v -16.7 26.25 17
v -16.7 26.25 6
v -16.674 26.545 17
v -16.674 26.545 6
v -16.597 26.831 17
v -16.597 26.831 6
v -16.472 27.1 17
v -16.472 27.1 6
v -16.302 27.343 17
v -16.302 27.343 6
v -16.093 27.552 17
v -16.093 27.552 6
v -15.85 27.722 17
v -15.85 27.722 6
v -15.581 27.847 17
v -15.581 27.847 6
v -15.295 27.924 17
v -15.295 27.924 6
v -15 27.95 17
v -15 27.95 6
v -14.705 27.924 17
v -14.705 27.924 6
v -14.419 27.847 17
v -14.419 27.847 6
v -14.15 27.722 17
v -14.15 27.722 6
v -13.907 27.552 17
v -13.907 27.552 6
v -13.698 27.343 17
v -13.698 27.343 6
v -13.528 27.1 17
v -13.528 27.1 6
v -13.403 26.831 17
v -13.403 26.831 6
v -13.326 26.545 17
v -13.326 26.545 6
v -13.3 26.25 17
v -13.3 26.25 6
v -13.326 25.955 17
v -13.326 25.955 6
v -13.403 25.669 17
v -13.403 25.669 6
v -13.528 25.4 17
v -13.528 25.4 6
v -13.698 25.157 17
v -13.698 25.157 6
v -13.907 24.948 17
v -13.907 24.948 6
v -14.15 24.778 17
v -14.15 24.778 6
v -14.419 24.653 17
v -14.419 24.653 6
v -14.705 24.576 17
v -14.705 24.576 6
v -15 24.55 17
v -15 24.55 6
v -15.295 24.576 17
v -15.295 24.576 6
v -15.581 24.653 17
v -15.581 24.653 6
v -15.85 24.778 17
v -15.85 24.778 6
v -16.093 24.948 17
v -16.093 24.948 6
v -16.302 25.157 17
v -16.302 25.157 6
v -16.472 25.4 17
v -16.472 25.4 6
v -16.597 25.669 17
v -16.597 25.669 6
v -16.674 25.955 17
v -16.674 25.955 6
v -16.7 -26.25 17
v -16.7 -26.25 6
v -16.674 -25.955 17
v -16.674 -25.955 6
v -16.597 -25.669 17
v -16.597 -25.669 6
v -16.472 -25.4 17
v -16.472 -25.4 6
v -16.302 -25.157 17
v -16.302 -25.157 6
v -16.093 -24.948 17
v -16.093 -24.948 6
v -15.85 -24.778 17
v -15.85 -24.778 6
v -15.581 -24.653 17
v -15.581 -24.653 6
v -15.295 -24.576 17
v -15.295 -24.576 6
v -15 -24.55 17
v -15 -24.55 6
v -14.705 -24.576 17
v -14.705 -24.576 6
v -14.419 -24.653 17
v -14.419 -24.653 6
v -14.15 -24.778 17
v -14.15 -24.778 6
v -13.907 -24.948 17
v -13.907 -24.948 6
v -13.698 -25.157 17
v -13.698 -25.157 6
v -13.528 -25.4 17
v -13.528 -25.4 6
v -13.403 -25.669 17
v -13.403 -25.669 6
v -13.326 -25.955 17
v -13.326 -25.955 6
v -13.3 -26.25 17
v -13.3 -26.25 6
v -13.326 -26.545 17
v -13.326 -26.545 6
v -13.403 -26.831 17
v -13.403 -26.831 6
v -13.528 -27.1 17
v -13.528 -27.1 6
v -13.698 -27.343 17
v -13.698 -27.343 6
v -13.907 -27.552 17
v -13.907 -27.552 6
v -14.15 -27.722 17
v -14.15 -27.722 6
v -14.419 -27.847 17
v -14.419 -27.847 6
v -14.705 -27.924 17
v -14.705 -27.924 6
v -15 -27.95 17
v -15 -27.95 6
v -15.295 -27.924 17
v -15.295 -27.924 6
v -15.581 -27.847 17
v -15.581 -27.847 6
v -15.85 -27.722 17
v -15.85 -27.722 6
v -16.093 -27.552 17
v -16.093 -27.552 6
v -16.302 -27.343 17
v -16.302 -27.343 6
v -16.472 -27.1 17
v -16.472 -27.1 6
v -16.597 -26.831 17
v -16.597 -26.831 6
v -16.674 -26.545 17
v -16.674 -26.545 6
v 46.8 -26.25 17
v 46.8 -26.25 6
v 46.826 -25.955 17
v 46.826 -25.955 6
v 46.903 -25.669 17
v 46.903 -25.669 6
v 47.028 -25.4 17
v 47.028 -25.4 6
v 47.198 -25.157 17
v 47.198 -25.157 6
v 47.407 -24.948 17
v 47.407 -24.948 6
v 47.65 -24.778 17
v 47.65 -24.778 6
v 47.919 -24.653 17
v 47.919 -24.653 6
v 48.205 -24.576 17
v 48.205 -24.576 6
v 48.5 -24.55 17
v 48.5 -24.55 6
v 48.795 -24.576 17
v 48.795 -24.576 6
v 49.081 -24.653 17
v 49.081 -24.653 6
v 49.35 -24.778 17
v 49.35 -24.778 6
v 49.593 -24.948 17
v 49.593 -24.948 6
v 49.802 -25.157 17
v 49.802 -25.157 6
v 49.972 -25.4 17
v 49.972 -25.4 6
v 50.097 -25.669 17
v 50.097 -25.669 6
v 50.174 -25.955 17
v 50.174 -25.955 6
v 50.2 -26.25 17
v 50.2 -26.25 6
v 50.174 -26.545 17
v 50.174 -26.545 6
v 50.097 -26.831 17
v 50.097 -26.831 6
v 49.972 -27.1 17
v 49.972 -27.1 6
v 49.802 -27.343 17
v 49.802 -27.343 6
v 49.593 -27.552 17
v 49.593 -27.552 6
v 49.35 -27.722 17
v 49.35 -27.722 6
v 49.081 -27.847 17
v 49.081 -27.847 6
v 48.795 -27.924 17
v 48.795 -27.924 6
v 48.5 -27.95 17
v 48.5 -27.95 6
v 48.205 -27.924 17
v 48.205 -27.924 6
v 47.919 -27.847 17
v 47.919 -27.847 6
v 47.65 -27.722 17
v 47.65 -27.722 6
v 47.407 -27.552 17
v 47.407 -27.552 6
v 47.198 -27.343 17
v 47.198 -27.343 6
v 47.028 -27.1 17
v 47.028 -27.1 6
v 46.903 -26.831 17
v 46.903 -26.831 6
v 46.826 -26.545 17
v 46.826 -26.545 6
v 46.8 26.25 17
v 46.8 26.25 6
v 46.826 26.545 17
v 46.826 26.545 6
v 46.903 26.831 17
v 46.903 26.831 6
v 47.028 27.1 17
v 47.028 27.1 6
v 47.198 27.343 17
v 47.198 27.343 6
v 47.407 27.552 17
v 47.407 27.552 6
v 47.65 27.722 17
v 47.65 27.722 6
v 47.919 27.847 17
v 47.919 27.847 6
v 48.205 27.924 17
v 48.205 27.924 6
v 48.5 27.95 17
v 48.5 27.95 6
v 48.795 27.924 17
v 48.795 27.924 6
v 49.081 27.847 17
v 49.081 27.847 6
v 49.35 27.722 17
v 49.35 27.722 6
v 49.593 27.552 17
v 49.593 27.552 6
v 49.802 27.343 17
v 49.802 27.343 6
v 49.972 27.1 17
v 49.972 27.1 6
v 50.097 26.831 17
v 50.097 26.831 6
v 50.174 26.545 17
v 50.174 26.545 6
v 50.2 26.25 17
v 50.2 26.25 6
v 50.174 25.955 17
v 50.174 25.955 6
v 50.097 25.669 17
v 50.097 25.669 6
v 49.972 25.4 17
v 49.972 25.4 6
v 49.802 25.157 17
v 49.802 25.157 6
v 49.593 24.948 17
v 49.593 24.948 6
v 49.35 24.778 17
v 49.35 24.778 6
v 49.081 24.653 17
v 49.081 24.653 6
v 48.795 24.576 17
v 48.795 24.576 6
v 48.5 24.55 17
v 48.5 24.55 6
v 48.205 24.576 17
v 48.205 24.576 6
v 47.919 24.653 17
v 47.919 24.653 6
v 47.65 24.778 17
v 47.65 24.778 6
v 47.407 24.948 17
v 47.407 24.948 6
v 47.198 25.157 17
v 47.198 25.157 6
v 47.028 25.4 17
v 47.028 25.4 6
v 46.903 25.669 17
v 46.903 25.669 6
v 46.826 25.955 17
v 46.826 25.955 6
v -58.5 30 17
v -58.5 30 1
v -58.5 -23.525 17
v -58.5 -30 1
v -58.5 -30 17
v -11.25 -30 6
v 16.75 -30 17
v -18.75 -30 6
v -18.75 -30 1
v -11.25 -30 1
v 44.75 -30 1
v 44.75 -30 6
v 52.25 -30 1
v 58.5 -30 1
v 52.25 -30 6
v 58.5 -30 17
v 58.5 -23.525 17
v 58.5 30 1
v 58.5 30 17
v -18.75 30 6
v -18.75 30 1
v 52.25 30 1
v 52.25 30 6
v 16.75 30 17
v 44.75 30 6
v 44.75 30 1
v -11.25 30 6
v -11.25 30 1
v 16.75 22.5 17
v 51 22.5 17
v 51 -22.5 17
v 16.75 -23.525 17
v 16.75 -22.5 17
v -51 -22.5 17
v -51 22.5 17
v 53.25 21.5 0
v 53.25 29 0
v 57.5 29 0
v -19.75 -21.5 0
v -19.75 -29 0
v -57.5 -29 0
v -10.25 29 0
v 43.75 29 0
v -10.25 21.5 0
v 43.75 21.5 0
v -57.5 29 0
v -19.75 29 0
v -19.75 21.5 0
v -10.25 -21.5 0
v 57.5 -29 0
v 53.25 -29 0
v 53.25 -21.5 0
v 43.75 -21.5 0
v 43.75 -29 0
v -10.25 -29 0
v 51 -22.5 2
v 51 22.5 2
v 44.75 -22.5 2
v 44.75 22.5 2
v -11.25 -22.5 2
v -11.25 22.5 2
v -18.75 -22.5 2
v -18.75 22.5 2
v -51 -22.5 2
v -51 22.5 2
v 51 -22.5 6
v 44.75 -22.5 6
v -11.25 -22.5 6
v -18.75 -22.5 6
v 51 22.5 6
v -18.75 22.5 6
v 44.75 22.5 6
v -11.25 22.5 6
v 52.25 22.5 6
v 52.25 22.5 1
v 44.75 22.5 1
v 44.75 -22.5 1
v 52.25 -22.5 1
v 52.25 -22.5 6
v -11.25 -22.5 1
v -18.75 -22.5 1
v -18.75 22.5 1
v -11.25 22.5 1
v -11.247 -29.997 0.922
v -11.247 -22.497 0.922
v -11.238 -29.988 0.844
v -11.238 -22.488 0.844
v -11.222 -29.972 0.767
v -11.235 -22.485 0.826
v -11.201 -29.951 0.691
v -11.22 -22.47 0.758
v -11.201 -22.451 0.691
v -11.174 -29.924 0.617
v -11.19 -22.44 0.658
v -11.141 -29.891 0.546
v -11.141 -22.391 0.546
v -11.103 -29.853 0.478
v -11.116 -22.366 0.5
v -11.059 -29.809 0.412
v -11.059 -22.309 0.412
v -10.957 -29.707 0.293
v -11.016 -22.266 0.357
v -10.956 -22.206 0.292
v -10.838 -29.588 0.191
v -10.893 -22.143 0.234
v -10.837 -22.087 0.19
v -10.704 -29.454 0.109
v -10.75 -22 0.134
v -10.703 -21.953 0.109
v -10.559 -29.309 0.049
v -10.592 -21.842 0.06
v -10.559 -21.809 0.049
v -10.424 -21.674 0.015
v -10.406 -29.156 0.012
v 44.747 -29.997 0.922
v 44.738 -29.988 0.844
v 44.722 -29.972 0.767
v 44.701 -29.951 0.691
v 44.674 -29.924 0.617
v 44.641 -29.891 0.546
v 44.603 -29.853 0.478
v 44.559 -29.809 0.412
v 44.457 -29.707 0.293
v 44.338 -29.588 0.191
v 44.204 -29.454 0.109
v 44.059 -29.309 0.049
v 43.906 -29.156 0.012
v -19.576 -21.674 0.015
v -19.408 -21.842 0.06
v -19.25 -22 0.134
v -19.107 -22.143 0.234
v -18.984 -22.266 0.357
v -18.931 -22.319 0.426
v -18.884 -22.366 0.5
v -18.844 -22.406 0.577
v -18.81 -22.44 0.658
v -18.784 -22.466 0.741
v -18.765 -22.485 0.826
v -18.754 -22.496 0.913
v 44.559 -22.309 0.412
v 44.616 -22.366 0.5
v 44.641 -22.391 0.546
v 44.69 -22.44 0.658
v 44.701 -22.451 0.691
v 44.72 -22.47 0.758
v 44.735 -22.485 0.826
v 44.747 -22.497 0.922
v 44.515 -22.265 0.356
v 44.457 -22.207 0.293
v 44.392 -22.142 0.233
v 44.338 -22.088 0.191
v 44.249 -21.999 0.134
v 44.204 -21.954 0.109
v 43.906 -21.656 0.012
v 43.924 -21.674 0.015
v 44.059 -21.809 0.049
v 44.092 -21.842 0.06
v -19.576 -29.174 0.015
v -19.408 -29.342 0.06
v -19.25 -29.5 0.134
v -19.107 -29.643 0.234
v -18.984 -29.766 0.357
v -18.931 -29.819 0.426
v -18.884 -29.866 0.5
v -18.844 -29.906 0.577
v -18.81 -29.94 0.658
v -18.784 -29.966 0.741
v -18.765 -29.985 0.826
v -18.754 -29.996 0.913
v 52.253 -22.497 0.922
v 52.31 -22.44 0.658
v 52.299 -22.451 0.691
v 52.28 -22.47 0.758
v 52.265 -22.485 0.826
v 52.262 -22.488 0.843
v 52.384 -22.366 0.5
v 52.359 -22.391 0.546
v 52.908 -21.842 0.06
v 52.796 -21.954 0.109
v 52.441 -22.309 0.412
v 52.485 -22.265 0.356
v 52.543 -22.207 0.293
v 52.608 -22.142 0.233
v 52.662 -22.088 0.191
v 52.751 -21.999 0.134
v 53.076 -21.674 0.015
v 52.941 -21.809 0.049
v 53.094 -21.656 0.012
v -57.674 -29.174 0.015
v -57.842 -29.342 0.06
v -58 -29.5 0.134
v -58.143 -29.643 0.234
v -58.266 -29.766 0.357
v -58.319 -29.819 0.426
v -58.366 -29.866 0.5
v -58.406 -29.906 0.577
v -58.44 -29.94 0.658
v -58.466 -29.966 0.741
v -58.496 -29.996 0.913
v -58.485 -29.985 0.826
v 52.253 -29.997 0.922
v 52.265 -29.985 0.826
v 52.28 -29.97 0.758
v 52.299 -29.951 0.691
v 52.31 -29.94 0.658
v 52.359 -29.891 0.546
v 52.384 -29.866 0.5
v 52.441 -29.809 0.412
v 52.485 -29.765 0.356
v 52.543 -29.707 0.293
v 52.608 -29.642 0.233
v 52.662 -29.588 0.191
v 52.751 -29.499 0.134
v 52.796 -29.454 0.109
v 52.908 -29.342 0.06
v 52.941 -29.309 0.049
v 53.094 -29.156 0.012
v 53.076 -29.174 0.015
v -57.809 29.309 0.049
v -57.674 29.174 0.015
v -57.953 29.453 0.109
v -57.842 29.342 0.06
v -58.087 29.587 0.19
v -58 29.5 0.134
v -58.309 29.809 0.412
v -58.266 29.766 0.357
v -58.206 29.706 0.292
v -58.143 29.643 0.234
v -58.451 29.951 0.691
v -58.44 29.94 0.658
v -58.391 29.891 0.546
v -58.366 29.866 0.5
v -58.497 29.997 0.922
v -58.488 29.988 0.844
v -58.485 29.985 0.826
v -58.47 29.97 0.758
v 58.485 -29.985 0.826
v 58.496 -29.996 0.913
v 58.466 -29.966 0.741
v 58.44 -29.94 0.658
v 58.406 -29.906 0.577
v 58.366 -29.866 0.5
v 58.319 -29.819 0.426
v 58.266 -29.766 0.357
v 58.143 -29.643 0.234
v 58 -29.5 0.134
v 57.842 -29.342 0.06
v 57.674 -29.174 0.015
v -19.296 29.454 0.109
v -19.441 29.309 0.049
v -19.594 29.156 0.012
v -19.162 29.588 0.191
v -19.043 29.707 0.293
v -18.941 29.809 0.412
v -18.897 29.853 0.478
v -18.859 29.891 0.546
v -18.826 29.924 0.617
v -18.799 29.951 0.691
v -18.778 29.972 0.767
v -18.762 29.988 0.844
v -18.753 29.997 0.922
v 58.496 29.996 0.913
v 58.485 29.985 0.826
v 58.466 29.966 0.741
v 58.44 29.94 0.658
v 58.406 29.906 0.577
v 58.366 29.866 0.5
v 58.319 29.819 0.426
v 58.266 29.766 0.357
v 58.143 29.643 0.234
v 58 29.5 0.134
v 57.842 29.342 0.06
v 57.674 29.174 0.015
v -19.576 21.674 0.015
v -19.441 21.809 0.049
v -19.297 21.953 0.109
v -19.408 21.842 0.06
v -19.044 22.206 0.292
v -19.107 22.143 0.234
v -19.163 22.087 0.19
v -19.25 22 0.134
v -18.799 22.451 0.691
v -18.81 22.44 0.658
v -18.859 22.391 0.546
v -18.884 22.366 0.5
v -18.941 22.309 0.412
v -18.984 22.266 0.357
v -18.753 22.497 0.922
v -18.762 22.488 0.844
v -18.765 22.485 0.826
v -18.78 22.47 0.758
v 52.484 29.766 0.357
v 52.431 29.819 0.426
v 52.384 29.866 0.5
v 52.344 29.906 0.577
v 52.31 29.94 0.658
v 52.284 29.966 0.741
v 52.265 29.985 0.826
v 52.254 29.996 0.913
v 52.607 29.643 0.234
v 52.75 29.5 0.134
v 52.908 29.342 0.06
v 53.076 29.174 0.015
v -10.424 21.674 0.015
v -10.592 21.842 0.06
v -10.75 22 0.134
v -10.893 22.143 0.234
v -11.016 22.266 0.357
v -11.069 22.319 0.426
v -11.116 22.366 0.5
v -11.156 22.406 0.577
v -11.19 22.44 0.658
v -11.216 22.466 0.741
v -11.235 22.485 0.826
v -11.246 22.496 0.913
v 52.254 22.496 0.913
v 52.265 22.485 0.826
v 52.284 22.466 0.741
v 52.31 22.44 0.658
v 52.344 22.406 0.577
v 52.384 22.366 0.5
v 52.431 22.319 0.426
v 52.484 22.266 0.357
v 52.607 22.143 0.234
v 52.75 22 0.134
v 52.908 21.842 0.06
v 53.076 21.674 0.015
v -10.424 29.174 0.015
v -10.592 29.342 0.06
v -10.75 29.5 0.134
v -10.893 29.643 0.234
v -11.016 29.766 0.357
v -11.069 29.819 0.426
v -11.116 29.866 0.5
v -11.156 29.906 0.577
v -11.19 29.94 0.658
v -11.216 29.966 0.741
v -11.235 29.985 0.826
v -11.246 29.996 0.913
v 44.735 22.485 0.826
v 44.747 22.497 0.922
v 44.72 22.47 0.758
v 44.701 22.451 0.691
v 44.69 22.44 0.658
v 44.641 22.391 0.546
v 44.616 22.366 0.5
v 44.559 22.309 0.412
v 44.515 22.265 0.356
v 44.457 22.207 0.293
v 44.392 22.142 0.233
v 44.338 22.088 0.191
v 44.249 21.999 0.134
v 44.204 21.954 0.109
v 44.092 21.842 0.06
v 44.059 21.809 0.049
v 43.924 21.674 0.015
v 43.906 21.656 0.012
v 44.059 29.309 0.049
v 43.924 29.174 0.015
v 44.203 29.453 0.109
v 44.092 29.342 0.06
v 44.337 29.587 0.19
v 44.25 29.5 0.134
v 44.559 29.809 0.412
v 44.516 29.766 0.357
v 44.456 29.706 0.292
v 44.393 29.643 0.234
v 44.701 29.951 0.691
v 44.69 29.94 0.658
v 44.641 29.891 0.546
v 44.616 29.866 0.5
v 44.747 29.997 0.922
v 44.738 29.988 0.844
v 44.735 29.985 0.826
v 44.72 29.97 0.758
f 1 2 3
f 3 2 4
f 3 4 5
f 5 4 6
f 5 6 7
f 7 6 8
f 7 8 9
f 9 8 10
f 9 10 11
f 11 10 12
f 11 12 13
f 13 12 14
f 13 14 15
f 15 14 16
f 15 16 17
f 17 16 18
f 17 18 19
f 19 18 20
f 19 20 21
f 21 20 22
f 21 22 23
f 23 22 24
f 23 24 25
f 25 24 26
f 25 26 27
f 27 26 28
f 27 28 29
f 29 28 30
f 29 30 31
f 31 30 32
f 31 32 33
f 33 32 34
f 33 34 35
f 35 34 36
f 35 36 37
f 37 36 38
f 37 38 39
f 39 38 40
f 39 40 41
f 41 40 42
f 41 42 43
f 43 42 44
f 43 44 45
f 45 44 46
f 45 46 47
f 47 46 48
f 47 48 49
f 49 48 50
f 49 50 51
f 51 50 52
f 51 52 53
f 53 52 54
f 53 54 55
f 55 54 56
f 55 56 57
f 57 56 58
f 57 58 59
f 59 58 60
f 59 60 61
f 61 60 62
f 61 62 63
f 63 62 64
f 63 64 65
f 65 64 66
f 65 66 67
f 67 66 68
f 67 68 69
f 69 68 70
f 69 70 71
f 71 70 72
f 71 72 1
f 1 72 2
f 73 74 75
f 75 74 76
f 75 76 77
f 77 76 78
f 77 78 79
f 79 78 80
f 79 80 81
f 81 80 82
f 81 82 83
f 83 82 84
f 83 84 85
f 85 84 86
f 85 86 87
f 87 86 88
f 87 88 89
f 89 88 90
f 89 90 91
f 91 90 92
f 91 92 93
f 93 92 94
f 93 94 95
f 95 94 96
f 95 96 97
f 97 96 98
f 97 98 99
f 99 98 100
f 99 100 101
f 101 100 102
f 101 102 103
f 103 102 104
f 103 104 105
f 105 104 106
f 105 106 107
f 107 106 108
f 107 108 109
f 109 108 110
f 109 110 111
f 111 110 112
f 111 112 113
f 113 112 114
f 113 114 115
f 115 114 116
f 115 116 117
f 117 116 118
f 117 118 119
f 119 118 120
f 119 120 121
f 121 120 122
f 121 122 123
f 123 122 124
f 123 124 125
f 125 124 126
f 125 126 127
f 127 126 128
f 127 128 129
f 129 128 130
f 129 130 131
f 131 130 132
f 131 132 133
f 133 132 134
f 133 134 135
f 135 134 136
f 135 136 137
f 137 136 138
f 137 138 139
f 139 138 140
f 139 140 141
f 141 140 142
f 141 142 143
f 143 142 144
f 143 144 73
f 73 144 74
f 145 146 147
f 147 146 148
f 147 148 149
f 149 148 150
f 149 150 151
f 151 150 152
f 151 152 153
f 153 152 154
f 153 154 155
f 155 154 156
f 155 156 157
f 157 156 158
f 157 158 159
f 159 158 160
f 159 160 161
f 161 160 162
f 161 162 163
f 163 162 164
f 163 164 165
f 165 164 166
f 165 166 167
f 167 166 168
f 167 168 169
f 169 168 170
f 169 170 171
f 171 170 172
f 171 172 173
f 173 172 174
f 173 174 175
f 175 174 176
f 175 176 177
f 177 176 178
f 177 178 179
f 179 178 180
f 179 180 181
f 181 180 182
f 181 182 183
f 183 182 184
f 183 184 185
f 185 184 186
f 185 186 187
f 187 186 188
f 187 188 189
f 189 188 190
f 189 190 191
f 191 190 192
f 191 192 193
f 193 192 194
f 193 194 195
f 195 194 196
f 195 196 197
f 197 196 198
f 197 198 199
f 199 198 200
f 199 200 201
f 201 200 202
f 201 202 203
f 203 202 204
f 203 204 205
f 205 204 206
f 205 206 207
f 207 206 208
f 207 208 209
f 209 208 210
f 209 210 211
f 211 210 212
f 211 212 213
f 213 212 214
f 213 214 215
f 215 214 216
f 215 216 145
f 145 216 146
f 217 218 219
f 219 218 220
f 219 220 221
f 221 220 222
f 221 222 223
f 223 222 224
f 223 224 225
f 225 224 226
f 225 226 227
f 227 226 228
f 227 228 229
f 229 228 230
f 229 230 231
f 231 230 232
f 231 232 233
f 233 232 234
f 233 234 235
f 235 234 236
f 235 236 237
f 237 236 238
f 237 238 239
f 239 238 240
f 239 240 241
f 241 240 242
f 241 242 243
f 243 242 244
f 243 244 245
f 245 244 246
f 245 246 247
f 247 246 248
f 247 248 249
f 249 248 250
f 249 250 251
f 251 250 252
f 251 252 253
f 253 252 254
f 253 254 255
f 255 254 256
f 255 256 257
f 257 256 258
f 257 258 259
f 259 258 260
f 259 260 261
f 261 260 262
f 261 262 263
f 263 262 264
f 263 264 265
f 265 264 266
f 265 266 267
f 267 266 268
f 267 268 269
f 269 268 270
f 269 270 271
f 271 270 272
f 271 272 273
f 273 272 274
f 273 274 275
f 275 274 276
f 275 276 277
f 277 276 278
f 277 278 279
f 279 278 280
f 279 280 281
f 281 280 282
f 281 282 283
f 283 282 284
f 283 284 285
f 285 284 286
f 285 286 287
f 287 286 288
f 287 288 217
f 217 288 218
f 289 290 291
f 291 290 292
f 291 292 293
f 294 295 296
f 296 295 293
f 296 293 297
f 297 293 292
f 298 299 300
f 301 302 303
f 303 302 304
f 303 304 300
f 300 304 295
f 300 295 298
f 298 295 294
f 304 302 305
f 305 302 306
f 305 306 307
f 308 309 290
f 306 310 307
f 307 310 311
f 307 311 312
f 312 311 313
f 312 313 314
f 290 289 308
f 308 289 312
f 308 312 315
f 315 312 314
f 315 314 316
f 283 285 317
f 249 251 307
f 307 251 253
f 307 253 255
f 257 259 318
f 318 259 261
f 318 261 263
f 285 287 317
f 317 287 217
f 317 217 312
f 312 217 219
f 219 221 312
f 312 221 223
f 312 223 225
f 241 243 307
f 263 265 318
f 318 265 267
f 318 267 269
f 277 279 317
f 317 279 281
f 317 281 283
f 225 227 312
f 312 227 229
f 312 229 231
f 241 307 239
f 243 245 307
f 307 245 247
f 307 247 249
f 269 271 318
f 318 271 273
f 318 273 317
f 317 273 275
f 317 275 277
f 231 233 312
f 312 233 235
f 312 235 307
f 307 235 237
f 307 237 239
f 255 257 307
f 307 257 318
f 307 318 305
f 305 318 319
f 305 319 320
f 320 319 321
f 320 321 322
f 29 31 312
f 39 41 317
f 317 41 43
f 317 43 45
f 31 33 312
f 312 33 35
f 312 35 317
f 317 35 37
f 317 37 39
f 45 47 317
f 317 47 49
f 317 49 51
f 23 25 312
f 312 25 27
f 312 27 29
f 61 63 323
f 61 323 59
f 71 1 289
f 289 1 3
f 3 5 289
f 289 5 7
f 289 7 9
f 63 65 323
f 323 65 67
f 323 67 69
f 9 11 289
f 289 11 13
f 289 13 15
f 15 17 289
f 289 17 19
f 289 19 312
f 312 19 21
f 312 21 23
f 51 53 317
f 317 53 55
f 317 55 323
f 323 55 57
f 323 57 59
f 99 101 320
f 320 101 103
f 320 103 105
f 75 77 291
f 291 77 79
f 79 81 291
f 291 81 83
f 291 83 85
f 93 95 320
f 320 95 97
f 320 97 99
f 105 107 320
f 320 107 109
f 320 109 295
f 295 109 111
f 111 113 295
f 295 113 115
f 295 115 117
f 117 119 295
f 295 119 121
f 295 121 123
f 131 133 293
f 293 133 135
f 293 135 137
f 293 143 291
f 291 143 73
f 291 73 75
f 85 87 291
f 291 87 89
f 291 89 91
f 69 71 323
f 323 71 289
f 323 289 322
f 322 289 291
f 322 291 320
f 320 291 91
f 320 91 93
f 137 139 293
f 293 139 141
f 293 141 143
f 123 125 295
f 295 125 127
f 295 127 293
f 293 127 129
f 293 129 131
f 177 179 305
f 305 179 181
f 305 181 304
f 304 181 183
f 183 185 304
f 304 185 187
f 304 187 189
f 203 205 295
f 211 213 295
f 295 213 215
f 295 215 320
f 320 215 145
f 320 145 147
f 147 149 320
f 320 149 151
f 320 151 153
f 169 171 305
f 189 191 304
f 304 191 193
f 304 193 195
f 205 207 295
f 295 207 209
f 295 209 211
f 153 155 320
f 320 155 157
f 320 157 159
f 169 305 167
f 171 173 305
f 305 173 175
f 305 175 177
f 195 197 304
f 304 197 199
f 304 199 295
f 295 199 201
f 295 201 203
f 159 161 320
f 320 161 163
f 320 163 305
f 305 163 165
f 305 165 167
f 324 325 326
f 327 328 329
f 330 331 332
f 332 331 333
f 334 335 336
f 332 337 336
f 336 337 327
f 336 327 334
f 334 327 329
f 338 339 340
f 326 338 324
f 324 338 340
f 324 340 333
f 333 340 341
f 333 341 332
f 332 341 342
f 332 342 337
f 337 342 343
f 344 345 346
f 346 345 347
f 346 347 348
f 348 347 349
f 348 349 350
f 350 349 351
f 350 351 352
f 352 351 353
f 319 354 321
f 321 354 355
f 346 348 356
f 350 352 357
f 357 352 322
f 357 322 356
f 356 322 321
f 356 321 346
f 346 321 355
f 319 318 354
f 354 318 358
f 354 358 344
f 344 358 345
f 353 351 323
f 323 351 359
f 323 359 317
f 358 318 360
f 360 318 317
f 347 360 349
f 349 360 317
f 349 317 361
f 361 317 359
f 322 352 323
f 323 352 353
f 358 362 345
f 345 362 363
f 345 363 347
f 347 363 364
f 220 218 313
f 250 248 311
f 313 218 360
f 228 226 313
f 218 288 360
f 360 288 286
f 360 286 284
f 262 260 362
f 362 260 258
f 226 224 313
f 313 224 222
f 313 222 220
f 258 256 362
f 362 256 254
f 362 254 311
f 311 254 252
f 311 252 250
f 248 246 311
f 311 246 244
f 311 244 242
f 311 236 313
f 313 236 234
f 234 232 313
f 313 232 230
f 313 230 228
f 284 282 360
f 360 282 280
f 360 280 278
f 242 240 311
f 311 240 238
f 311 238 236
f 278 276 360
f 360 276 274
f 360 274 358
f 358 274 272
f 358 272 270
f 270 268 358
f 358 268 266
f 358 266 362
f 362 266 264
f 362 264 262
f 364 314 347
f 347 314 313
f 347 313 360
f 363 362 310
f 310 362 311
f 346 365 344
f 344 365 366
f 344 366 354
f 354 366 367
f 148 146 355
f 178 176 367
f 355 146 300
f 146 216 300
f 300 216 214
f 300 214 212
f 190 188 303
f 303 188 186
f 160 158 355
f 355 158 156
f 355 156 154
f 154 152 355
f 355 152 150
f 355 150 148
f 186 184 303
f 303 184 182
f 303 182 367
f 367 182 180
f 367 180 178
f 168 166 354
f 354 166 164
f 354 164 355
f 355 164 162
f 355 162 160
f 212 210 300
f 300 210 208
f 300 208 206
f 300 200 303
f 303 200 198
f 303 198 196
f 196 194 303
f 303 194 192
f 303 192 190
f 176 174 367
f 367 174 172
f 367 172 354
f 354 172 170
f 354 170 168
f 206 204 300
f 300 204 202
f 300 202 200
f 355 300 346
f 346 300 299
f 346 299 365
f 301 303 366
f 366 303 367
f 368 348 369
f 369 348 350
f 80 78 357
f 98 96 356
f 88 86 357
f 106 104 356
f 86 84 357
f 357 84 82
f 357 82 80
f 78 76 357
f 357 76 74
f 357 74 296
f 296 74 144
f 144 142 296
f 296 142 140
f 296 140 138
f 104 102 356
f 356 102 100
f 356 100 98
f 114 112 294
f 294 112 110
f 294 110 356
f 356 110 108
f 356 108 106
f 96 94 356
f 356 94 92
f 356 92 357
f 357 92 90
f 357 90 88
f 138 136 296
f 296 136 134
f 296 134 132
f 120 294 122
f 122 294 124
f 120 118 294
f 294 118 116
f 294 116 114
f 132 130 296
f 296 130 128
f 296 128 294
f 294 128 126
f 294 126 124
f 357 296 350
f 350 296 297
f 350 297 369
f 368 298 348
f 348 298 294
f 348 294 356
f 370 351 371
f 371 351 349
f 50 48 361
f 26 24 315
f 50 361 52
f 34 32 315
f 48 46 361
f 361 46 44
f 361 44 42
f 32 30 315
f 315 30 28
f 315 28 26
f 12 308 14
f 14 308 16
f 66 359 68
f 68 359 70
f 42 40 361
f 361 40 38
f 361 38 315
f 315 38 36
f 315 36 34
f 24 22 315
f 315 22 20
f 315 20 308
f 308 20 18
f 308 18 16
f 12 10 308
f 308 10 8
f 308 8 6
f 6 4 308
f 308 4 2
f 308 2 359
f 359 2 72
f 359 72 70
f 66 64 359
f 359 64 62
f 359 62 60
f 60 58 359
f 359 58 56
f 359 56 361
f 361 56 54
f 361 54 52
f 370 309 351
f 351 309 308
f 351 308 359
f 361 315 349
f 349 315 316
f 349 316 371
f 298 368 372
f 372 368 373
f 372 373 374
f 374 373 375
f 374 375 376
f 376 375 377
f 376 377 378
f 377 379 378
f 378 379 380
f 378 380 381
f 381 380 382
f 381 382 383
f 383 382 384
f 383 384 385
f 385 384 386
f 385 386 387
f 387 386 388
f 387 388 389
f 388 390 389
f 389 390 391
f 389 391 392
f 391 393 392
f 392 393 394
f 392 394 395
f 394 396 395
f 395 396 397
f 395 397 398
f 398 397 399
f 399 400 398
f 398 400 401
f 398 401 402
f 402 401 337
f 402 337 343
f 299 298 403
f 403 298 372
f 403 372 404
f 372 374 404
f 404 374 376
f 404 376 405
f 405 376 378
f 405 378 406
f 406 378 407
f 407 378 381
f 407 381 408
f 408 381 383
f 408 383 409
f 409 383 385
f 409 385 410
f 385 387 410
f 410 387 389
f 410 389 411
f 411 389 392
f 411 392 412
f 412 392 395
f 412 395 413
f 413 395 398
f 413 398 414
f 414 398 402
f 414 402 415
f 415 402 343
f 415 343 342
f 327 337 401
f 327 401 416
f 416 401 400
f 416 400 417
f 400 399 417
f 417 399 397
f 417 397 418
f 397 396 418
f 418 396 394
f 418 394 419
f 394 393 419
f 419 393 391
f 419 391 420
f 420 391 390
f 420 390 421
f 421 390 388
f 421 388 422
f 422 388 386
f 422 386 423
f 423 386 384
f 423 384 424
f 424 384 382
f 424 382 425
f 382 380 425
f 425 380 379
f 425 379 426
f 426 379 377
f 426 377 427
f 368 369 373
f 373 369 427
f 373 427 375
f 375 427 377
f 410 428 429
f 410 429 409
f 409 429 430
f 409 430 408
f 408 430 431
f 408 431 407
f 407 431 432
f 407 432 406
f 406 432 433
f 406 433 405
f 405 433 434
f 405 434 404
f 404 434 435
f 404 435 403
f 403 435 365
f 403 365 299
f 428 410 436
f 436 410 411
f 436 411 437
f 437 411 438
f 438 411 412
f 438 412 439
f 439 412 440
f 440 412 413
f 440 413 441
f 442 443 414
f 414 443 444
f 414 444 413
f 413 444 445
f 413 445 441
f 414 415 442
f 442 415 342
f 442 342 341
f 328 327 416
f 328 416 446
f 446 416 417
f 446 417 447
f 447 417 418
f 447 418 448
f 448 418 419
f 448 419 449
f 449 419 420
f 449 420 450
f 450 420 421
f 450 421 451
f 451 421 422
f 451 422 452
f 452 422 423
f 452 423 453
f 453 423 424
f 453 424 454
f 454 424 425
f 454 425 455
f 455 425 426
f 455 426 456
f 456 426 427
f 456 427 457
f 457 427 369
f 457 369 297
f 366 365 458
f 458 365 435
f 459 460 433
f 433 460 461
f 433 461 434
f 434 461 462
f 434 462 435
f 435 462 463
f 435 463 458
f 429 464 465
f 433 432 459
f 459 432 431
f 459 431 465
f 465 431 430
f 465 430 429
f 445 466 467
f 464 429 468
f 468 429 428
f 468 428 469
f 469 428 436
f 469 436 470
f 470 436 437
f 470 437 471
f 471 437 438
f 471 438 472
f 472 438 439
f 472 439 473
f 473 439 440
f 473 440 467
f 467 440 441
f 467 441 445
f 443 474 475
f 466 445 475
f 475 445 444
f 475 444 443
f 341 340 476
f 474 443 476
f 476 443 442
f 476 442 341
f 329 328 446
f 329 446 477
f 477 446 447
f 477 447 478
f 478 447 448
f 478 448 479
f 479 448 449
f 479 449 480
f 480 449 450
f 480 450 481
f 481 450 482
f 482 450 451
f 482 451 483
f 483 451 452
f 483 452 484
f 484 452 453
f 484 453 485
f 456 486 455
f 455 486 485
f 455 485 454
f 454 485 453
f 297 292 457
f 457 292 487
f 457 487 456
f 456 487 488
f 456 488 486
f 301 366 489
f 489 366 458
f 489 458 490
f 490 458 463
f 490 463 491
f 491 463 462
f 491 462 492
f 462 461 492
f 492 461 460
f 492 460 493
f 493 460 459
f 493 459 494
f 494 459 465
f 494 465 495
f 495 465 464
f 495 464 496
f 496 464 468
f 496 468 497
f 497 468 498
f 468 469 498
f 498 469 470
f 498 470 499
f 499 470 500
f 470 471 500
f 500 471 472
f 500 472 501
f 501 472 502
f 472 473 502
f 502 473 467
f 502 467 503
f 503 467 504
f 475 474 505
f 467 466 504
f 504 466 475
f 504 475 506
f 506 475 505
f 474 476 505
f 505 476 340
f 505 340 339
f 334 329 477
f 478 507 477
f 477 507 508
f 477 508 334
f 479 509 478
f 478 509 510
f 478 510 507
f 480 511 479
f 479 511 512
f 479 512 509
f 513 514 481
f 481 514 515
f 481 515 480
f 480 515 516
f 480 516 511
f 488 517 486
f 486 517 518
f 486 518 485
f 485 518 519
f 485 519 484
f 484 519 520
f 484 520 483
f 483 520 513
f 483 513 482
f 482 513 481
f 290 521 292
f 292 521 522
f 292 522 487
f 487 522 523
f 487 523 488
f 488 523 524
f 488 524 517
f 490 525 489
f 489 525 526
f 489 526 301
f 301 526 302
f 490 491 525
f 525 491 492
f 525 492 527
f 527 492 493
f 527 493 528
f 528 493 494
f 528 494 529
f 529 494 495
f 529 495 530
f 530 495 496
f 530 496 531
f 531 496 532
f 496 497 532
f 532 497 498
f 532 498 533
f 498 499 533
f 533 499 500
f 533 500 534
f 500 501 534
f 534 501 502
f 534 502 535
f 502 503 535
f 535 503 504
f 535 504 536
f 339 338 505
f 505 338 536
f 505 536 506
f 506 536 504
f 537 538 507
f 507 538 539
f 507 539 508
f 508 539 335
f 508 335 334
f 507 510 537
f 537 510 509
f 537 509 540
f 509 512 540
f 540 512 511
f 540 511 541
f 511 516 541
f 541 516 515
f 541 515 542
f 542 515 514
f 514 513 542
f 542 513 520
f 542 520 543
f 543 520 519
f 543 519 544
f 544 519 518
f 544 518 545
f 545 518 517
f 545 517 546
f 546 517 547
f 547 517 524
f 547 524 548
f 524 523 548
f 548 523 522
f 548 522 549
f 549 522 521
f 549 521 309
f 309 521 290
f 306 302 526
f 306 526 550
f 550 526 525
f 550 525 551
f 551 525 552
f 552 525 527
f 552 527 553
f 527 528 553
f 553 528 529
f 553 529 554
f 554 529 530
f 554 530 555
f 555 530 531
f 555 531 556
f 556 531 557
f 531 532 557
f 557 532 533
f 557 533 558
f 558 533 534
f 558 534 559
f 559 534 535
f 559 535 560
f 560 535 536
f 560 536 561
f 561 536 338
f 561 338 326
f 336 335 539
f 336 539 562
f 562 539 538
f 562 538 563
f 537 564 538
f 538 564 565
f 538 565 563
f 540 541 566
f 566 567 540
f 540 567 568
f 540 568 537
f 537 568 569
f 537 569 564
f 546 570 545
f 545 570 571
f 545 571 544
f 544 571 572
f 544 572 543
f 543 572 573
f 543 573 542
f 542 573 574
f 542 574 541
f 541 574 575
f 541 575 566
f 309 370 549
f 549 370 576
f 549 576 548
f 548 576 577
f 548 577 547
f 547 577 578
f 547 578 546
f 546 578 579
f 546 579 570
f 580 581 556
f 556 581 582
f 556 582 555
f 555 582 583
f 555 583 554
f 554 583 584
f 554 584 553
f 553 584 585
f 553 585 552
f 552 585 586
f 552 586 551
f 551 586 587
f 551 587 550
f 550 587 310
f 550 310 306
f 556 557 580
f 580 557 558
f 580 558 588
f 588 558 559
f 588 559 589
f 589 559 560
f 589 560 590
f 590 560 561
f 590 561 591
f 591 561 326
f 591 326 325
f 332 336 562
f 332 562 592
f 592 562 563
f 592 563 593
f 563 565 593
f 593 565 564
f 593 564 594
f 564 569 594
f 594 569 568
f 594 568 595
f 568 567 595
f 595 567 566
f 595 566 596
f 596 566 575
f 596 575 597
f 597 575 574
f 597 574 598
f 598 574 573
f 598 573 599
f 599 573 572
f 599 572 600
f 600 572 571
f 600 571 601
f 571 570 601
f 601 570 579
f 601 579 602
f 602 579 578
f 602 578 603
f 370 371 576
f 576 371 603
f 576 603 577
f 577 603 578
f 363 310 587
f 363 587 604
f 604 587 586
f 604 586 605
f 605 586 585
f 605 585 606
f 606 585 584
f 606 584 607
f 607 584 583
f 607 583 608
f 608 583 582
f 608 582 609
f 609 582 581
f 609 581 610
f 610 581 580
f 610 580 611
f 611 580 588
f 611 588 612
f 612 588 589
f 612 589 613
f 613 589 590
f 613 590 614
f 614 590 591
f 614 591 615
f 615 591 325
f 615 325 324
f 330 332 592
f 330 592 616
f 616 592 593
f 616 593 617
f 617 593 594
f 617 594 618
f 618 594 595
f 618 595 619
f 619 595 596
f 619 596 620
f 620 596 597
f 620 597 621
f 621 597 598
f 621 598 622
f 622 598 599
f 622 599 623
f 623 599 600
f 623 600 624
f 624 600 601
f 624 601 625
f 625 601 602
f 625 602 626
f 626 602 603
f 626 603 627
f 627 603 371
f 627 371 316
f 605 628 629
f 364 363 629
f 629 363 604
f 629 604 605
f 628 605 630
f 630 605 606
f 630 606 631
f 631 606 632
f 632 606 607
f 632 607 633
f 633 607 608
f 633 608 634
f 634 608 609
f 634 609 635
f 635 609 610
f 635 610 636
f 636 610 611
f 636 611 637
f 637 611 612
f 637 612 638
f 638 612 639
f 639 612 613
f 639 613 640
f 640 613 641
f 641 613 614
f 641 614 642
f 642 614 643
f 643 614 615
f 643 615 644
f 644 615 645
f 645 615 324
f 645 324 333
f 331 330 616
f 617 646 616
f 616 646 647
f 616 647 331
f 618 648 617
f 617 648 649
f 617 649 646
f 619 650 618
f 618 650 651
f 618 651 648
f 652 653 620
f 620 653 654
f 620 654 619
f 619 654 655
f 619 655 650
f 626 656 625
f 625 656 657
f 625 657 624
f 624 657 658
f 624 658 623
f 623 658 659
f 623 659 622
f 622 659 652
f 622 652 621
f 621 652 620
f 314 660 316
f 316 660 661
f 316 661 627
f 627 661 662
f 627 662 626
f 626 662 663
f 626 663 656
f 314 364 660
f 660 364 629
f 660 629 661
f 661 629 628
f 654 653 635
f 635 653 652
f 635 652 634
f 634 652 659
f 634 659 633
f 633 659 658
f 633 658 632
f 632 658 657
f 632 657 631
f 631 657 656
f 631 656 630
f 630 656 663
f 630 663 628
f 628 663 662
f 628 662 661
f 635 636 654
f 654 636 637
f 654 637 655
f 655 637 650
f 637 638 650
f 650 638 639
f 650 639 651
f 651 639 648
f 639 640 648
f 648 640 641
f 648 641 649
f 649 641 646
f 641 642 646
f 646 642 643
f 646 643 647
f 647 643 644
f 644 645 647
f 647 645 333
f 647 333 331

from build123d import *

# Parameters (mm, degrees)
SKETCH_1_W          = 117
SKETCH_1_H          = 60
EXTRUDE_1_DEPTH     = 17
SKETCH_2_W          = 102
SKETCH_2_H          = 45
CUT_EXTRUDE_1_DEPTH = 15
SKETCH_4_R          = 1.7
CUT_EXTRUDE_2_DEPTH = 18
SKETCH_5_W          = 7.5
SKETCH_5_H          = 7.5
CUT_EXTRUDE_3_DEPTH = 6
FILLET_2_R          = 1


with BuildPart() as part:
    # ｽｹｯﾁ1 → ﾎﾞｽ - 押し出し1 (new body)
    with BuildSketch(Plane.XY):
        Rectangle(SKETCH_1_W, SKETCH_1_H)
    extrude(amount=EXTRUDE_1_DEPTH)

    # ｽｹｯﾁ2 → ｶｯﾄ - 押し出し1 (cut)
    with BuildSketch(Plane.XY.offset(17)):
        Rectangle(SKETCH_2_W, SKETCH_2_H)
    extrude(amount=-CUT_EXTRUDE_1_DEPTH, mode=Mode.SUBTRACT)

    # ｽｹｯﾁ4 → ｶｯﾄ - 押し出し2 (cut, through all)
    with BuildSketch(Plane(origin=(0, 0, 0), x_dir=(-1, 0, 0), z_dir=(0, 0, -1))):
        with Locations((15, 26.25)):
            Circle(SKETCH_4_R)
        with Locations((15, -26.25)):
            Circle(SKETCH_4_R)
        with Locations((-48.5, -26.25)):
            Circle(SKETCH_4_R)
        with Locations((-48.5, 26.25)):
            Circle(SKETCH_4_R)
    extrude(amount=-CUT_EXTRUDE_2_DEPTH, mode=Mode.SUBTRACT)

    # ｽｹｯﾁ5 → ｶｯﾄ - 押し出し3 (cut)
    with BuildSketch(Plane(origin=(0, 0, 0), x_dir=(-1, 0, 0), z_dir=(0, 0, -1))):
        with Locations((-48.5, -26.25)):
            Rectangle(SKETCH_5_W, SKETCH_5_H)
        with Locations((-48.5, 26.25)):
            Rectangle(SKETCH_5_W, SKETCH_5_H)
        with Locations((15, 26.25)):
            Rectangle(SKETCH_5_W, SKETCH_5_H)
        with Locations((15, -26.25)):
            Rectangle(SKETCH_5_W, SKETCH_5_H)
    extrude(amount=-CUT_EXTRUDE_3_DEPTH, mode=Mode.SUBTRACT)

    # ﾌｨﾚｯﾄ2
    fillet_2_edges = [part.edges().sort_by_distance(p)[0] for p in [
        (55.375, 30, 0),
        (58.5, 0, 0),
        (16.75, 30, 0),
        (-38.625, 30, 0),
        (16.75, -30, 0),
        (55.375, -30, 0),
        (-38.625, -30, 0),
        (-58.5, 0, 0),
        (-18.75, -26.25, 0),
        (-15, -22.5, 0),
        (-11.25, -26.25, 0),
        (-18.75, 26.25, 0),
        (-11.25, 26.25, 0),
        (-15, 22.5, 0),
        (44.75, 26.25, 0),
        (52.25, 26.25, 0),
        (48.5, 22.5, 0),
        (44.75, -26.25, 0),
        (48.5, -22.5, 0),
        (52.25, -26.25, 0),
    ]]
    fillet(fillet_2_edges, radius=FILLET_2_R)


solid = part.part
